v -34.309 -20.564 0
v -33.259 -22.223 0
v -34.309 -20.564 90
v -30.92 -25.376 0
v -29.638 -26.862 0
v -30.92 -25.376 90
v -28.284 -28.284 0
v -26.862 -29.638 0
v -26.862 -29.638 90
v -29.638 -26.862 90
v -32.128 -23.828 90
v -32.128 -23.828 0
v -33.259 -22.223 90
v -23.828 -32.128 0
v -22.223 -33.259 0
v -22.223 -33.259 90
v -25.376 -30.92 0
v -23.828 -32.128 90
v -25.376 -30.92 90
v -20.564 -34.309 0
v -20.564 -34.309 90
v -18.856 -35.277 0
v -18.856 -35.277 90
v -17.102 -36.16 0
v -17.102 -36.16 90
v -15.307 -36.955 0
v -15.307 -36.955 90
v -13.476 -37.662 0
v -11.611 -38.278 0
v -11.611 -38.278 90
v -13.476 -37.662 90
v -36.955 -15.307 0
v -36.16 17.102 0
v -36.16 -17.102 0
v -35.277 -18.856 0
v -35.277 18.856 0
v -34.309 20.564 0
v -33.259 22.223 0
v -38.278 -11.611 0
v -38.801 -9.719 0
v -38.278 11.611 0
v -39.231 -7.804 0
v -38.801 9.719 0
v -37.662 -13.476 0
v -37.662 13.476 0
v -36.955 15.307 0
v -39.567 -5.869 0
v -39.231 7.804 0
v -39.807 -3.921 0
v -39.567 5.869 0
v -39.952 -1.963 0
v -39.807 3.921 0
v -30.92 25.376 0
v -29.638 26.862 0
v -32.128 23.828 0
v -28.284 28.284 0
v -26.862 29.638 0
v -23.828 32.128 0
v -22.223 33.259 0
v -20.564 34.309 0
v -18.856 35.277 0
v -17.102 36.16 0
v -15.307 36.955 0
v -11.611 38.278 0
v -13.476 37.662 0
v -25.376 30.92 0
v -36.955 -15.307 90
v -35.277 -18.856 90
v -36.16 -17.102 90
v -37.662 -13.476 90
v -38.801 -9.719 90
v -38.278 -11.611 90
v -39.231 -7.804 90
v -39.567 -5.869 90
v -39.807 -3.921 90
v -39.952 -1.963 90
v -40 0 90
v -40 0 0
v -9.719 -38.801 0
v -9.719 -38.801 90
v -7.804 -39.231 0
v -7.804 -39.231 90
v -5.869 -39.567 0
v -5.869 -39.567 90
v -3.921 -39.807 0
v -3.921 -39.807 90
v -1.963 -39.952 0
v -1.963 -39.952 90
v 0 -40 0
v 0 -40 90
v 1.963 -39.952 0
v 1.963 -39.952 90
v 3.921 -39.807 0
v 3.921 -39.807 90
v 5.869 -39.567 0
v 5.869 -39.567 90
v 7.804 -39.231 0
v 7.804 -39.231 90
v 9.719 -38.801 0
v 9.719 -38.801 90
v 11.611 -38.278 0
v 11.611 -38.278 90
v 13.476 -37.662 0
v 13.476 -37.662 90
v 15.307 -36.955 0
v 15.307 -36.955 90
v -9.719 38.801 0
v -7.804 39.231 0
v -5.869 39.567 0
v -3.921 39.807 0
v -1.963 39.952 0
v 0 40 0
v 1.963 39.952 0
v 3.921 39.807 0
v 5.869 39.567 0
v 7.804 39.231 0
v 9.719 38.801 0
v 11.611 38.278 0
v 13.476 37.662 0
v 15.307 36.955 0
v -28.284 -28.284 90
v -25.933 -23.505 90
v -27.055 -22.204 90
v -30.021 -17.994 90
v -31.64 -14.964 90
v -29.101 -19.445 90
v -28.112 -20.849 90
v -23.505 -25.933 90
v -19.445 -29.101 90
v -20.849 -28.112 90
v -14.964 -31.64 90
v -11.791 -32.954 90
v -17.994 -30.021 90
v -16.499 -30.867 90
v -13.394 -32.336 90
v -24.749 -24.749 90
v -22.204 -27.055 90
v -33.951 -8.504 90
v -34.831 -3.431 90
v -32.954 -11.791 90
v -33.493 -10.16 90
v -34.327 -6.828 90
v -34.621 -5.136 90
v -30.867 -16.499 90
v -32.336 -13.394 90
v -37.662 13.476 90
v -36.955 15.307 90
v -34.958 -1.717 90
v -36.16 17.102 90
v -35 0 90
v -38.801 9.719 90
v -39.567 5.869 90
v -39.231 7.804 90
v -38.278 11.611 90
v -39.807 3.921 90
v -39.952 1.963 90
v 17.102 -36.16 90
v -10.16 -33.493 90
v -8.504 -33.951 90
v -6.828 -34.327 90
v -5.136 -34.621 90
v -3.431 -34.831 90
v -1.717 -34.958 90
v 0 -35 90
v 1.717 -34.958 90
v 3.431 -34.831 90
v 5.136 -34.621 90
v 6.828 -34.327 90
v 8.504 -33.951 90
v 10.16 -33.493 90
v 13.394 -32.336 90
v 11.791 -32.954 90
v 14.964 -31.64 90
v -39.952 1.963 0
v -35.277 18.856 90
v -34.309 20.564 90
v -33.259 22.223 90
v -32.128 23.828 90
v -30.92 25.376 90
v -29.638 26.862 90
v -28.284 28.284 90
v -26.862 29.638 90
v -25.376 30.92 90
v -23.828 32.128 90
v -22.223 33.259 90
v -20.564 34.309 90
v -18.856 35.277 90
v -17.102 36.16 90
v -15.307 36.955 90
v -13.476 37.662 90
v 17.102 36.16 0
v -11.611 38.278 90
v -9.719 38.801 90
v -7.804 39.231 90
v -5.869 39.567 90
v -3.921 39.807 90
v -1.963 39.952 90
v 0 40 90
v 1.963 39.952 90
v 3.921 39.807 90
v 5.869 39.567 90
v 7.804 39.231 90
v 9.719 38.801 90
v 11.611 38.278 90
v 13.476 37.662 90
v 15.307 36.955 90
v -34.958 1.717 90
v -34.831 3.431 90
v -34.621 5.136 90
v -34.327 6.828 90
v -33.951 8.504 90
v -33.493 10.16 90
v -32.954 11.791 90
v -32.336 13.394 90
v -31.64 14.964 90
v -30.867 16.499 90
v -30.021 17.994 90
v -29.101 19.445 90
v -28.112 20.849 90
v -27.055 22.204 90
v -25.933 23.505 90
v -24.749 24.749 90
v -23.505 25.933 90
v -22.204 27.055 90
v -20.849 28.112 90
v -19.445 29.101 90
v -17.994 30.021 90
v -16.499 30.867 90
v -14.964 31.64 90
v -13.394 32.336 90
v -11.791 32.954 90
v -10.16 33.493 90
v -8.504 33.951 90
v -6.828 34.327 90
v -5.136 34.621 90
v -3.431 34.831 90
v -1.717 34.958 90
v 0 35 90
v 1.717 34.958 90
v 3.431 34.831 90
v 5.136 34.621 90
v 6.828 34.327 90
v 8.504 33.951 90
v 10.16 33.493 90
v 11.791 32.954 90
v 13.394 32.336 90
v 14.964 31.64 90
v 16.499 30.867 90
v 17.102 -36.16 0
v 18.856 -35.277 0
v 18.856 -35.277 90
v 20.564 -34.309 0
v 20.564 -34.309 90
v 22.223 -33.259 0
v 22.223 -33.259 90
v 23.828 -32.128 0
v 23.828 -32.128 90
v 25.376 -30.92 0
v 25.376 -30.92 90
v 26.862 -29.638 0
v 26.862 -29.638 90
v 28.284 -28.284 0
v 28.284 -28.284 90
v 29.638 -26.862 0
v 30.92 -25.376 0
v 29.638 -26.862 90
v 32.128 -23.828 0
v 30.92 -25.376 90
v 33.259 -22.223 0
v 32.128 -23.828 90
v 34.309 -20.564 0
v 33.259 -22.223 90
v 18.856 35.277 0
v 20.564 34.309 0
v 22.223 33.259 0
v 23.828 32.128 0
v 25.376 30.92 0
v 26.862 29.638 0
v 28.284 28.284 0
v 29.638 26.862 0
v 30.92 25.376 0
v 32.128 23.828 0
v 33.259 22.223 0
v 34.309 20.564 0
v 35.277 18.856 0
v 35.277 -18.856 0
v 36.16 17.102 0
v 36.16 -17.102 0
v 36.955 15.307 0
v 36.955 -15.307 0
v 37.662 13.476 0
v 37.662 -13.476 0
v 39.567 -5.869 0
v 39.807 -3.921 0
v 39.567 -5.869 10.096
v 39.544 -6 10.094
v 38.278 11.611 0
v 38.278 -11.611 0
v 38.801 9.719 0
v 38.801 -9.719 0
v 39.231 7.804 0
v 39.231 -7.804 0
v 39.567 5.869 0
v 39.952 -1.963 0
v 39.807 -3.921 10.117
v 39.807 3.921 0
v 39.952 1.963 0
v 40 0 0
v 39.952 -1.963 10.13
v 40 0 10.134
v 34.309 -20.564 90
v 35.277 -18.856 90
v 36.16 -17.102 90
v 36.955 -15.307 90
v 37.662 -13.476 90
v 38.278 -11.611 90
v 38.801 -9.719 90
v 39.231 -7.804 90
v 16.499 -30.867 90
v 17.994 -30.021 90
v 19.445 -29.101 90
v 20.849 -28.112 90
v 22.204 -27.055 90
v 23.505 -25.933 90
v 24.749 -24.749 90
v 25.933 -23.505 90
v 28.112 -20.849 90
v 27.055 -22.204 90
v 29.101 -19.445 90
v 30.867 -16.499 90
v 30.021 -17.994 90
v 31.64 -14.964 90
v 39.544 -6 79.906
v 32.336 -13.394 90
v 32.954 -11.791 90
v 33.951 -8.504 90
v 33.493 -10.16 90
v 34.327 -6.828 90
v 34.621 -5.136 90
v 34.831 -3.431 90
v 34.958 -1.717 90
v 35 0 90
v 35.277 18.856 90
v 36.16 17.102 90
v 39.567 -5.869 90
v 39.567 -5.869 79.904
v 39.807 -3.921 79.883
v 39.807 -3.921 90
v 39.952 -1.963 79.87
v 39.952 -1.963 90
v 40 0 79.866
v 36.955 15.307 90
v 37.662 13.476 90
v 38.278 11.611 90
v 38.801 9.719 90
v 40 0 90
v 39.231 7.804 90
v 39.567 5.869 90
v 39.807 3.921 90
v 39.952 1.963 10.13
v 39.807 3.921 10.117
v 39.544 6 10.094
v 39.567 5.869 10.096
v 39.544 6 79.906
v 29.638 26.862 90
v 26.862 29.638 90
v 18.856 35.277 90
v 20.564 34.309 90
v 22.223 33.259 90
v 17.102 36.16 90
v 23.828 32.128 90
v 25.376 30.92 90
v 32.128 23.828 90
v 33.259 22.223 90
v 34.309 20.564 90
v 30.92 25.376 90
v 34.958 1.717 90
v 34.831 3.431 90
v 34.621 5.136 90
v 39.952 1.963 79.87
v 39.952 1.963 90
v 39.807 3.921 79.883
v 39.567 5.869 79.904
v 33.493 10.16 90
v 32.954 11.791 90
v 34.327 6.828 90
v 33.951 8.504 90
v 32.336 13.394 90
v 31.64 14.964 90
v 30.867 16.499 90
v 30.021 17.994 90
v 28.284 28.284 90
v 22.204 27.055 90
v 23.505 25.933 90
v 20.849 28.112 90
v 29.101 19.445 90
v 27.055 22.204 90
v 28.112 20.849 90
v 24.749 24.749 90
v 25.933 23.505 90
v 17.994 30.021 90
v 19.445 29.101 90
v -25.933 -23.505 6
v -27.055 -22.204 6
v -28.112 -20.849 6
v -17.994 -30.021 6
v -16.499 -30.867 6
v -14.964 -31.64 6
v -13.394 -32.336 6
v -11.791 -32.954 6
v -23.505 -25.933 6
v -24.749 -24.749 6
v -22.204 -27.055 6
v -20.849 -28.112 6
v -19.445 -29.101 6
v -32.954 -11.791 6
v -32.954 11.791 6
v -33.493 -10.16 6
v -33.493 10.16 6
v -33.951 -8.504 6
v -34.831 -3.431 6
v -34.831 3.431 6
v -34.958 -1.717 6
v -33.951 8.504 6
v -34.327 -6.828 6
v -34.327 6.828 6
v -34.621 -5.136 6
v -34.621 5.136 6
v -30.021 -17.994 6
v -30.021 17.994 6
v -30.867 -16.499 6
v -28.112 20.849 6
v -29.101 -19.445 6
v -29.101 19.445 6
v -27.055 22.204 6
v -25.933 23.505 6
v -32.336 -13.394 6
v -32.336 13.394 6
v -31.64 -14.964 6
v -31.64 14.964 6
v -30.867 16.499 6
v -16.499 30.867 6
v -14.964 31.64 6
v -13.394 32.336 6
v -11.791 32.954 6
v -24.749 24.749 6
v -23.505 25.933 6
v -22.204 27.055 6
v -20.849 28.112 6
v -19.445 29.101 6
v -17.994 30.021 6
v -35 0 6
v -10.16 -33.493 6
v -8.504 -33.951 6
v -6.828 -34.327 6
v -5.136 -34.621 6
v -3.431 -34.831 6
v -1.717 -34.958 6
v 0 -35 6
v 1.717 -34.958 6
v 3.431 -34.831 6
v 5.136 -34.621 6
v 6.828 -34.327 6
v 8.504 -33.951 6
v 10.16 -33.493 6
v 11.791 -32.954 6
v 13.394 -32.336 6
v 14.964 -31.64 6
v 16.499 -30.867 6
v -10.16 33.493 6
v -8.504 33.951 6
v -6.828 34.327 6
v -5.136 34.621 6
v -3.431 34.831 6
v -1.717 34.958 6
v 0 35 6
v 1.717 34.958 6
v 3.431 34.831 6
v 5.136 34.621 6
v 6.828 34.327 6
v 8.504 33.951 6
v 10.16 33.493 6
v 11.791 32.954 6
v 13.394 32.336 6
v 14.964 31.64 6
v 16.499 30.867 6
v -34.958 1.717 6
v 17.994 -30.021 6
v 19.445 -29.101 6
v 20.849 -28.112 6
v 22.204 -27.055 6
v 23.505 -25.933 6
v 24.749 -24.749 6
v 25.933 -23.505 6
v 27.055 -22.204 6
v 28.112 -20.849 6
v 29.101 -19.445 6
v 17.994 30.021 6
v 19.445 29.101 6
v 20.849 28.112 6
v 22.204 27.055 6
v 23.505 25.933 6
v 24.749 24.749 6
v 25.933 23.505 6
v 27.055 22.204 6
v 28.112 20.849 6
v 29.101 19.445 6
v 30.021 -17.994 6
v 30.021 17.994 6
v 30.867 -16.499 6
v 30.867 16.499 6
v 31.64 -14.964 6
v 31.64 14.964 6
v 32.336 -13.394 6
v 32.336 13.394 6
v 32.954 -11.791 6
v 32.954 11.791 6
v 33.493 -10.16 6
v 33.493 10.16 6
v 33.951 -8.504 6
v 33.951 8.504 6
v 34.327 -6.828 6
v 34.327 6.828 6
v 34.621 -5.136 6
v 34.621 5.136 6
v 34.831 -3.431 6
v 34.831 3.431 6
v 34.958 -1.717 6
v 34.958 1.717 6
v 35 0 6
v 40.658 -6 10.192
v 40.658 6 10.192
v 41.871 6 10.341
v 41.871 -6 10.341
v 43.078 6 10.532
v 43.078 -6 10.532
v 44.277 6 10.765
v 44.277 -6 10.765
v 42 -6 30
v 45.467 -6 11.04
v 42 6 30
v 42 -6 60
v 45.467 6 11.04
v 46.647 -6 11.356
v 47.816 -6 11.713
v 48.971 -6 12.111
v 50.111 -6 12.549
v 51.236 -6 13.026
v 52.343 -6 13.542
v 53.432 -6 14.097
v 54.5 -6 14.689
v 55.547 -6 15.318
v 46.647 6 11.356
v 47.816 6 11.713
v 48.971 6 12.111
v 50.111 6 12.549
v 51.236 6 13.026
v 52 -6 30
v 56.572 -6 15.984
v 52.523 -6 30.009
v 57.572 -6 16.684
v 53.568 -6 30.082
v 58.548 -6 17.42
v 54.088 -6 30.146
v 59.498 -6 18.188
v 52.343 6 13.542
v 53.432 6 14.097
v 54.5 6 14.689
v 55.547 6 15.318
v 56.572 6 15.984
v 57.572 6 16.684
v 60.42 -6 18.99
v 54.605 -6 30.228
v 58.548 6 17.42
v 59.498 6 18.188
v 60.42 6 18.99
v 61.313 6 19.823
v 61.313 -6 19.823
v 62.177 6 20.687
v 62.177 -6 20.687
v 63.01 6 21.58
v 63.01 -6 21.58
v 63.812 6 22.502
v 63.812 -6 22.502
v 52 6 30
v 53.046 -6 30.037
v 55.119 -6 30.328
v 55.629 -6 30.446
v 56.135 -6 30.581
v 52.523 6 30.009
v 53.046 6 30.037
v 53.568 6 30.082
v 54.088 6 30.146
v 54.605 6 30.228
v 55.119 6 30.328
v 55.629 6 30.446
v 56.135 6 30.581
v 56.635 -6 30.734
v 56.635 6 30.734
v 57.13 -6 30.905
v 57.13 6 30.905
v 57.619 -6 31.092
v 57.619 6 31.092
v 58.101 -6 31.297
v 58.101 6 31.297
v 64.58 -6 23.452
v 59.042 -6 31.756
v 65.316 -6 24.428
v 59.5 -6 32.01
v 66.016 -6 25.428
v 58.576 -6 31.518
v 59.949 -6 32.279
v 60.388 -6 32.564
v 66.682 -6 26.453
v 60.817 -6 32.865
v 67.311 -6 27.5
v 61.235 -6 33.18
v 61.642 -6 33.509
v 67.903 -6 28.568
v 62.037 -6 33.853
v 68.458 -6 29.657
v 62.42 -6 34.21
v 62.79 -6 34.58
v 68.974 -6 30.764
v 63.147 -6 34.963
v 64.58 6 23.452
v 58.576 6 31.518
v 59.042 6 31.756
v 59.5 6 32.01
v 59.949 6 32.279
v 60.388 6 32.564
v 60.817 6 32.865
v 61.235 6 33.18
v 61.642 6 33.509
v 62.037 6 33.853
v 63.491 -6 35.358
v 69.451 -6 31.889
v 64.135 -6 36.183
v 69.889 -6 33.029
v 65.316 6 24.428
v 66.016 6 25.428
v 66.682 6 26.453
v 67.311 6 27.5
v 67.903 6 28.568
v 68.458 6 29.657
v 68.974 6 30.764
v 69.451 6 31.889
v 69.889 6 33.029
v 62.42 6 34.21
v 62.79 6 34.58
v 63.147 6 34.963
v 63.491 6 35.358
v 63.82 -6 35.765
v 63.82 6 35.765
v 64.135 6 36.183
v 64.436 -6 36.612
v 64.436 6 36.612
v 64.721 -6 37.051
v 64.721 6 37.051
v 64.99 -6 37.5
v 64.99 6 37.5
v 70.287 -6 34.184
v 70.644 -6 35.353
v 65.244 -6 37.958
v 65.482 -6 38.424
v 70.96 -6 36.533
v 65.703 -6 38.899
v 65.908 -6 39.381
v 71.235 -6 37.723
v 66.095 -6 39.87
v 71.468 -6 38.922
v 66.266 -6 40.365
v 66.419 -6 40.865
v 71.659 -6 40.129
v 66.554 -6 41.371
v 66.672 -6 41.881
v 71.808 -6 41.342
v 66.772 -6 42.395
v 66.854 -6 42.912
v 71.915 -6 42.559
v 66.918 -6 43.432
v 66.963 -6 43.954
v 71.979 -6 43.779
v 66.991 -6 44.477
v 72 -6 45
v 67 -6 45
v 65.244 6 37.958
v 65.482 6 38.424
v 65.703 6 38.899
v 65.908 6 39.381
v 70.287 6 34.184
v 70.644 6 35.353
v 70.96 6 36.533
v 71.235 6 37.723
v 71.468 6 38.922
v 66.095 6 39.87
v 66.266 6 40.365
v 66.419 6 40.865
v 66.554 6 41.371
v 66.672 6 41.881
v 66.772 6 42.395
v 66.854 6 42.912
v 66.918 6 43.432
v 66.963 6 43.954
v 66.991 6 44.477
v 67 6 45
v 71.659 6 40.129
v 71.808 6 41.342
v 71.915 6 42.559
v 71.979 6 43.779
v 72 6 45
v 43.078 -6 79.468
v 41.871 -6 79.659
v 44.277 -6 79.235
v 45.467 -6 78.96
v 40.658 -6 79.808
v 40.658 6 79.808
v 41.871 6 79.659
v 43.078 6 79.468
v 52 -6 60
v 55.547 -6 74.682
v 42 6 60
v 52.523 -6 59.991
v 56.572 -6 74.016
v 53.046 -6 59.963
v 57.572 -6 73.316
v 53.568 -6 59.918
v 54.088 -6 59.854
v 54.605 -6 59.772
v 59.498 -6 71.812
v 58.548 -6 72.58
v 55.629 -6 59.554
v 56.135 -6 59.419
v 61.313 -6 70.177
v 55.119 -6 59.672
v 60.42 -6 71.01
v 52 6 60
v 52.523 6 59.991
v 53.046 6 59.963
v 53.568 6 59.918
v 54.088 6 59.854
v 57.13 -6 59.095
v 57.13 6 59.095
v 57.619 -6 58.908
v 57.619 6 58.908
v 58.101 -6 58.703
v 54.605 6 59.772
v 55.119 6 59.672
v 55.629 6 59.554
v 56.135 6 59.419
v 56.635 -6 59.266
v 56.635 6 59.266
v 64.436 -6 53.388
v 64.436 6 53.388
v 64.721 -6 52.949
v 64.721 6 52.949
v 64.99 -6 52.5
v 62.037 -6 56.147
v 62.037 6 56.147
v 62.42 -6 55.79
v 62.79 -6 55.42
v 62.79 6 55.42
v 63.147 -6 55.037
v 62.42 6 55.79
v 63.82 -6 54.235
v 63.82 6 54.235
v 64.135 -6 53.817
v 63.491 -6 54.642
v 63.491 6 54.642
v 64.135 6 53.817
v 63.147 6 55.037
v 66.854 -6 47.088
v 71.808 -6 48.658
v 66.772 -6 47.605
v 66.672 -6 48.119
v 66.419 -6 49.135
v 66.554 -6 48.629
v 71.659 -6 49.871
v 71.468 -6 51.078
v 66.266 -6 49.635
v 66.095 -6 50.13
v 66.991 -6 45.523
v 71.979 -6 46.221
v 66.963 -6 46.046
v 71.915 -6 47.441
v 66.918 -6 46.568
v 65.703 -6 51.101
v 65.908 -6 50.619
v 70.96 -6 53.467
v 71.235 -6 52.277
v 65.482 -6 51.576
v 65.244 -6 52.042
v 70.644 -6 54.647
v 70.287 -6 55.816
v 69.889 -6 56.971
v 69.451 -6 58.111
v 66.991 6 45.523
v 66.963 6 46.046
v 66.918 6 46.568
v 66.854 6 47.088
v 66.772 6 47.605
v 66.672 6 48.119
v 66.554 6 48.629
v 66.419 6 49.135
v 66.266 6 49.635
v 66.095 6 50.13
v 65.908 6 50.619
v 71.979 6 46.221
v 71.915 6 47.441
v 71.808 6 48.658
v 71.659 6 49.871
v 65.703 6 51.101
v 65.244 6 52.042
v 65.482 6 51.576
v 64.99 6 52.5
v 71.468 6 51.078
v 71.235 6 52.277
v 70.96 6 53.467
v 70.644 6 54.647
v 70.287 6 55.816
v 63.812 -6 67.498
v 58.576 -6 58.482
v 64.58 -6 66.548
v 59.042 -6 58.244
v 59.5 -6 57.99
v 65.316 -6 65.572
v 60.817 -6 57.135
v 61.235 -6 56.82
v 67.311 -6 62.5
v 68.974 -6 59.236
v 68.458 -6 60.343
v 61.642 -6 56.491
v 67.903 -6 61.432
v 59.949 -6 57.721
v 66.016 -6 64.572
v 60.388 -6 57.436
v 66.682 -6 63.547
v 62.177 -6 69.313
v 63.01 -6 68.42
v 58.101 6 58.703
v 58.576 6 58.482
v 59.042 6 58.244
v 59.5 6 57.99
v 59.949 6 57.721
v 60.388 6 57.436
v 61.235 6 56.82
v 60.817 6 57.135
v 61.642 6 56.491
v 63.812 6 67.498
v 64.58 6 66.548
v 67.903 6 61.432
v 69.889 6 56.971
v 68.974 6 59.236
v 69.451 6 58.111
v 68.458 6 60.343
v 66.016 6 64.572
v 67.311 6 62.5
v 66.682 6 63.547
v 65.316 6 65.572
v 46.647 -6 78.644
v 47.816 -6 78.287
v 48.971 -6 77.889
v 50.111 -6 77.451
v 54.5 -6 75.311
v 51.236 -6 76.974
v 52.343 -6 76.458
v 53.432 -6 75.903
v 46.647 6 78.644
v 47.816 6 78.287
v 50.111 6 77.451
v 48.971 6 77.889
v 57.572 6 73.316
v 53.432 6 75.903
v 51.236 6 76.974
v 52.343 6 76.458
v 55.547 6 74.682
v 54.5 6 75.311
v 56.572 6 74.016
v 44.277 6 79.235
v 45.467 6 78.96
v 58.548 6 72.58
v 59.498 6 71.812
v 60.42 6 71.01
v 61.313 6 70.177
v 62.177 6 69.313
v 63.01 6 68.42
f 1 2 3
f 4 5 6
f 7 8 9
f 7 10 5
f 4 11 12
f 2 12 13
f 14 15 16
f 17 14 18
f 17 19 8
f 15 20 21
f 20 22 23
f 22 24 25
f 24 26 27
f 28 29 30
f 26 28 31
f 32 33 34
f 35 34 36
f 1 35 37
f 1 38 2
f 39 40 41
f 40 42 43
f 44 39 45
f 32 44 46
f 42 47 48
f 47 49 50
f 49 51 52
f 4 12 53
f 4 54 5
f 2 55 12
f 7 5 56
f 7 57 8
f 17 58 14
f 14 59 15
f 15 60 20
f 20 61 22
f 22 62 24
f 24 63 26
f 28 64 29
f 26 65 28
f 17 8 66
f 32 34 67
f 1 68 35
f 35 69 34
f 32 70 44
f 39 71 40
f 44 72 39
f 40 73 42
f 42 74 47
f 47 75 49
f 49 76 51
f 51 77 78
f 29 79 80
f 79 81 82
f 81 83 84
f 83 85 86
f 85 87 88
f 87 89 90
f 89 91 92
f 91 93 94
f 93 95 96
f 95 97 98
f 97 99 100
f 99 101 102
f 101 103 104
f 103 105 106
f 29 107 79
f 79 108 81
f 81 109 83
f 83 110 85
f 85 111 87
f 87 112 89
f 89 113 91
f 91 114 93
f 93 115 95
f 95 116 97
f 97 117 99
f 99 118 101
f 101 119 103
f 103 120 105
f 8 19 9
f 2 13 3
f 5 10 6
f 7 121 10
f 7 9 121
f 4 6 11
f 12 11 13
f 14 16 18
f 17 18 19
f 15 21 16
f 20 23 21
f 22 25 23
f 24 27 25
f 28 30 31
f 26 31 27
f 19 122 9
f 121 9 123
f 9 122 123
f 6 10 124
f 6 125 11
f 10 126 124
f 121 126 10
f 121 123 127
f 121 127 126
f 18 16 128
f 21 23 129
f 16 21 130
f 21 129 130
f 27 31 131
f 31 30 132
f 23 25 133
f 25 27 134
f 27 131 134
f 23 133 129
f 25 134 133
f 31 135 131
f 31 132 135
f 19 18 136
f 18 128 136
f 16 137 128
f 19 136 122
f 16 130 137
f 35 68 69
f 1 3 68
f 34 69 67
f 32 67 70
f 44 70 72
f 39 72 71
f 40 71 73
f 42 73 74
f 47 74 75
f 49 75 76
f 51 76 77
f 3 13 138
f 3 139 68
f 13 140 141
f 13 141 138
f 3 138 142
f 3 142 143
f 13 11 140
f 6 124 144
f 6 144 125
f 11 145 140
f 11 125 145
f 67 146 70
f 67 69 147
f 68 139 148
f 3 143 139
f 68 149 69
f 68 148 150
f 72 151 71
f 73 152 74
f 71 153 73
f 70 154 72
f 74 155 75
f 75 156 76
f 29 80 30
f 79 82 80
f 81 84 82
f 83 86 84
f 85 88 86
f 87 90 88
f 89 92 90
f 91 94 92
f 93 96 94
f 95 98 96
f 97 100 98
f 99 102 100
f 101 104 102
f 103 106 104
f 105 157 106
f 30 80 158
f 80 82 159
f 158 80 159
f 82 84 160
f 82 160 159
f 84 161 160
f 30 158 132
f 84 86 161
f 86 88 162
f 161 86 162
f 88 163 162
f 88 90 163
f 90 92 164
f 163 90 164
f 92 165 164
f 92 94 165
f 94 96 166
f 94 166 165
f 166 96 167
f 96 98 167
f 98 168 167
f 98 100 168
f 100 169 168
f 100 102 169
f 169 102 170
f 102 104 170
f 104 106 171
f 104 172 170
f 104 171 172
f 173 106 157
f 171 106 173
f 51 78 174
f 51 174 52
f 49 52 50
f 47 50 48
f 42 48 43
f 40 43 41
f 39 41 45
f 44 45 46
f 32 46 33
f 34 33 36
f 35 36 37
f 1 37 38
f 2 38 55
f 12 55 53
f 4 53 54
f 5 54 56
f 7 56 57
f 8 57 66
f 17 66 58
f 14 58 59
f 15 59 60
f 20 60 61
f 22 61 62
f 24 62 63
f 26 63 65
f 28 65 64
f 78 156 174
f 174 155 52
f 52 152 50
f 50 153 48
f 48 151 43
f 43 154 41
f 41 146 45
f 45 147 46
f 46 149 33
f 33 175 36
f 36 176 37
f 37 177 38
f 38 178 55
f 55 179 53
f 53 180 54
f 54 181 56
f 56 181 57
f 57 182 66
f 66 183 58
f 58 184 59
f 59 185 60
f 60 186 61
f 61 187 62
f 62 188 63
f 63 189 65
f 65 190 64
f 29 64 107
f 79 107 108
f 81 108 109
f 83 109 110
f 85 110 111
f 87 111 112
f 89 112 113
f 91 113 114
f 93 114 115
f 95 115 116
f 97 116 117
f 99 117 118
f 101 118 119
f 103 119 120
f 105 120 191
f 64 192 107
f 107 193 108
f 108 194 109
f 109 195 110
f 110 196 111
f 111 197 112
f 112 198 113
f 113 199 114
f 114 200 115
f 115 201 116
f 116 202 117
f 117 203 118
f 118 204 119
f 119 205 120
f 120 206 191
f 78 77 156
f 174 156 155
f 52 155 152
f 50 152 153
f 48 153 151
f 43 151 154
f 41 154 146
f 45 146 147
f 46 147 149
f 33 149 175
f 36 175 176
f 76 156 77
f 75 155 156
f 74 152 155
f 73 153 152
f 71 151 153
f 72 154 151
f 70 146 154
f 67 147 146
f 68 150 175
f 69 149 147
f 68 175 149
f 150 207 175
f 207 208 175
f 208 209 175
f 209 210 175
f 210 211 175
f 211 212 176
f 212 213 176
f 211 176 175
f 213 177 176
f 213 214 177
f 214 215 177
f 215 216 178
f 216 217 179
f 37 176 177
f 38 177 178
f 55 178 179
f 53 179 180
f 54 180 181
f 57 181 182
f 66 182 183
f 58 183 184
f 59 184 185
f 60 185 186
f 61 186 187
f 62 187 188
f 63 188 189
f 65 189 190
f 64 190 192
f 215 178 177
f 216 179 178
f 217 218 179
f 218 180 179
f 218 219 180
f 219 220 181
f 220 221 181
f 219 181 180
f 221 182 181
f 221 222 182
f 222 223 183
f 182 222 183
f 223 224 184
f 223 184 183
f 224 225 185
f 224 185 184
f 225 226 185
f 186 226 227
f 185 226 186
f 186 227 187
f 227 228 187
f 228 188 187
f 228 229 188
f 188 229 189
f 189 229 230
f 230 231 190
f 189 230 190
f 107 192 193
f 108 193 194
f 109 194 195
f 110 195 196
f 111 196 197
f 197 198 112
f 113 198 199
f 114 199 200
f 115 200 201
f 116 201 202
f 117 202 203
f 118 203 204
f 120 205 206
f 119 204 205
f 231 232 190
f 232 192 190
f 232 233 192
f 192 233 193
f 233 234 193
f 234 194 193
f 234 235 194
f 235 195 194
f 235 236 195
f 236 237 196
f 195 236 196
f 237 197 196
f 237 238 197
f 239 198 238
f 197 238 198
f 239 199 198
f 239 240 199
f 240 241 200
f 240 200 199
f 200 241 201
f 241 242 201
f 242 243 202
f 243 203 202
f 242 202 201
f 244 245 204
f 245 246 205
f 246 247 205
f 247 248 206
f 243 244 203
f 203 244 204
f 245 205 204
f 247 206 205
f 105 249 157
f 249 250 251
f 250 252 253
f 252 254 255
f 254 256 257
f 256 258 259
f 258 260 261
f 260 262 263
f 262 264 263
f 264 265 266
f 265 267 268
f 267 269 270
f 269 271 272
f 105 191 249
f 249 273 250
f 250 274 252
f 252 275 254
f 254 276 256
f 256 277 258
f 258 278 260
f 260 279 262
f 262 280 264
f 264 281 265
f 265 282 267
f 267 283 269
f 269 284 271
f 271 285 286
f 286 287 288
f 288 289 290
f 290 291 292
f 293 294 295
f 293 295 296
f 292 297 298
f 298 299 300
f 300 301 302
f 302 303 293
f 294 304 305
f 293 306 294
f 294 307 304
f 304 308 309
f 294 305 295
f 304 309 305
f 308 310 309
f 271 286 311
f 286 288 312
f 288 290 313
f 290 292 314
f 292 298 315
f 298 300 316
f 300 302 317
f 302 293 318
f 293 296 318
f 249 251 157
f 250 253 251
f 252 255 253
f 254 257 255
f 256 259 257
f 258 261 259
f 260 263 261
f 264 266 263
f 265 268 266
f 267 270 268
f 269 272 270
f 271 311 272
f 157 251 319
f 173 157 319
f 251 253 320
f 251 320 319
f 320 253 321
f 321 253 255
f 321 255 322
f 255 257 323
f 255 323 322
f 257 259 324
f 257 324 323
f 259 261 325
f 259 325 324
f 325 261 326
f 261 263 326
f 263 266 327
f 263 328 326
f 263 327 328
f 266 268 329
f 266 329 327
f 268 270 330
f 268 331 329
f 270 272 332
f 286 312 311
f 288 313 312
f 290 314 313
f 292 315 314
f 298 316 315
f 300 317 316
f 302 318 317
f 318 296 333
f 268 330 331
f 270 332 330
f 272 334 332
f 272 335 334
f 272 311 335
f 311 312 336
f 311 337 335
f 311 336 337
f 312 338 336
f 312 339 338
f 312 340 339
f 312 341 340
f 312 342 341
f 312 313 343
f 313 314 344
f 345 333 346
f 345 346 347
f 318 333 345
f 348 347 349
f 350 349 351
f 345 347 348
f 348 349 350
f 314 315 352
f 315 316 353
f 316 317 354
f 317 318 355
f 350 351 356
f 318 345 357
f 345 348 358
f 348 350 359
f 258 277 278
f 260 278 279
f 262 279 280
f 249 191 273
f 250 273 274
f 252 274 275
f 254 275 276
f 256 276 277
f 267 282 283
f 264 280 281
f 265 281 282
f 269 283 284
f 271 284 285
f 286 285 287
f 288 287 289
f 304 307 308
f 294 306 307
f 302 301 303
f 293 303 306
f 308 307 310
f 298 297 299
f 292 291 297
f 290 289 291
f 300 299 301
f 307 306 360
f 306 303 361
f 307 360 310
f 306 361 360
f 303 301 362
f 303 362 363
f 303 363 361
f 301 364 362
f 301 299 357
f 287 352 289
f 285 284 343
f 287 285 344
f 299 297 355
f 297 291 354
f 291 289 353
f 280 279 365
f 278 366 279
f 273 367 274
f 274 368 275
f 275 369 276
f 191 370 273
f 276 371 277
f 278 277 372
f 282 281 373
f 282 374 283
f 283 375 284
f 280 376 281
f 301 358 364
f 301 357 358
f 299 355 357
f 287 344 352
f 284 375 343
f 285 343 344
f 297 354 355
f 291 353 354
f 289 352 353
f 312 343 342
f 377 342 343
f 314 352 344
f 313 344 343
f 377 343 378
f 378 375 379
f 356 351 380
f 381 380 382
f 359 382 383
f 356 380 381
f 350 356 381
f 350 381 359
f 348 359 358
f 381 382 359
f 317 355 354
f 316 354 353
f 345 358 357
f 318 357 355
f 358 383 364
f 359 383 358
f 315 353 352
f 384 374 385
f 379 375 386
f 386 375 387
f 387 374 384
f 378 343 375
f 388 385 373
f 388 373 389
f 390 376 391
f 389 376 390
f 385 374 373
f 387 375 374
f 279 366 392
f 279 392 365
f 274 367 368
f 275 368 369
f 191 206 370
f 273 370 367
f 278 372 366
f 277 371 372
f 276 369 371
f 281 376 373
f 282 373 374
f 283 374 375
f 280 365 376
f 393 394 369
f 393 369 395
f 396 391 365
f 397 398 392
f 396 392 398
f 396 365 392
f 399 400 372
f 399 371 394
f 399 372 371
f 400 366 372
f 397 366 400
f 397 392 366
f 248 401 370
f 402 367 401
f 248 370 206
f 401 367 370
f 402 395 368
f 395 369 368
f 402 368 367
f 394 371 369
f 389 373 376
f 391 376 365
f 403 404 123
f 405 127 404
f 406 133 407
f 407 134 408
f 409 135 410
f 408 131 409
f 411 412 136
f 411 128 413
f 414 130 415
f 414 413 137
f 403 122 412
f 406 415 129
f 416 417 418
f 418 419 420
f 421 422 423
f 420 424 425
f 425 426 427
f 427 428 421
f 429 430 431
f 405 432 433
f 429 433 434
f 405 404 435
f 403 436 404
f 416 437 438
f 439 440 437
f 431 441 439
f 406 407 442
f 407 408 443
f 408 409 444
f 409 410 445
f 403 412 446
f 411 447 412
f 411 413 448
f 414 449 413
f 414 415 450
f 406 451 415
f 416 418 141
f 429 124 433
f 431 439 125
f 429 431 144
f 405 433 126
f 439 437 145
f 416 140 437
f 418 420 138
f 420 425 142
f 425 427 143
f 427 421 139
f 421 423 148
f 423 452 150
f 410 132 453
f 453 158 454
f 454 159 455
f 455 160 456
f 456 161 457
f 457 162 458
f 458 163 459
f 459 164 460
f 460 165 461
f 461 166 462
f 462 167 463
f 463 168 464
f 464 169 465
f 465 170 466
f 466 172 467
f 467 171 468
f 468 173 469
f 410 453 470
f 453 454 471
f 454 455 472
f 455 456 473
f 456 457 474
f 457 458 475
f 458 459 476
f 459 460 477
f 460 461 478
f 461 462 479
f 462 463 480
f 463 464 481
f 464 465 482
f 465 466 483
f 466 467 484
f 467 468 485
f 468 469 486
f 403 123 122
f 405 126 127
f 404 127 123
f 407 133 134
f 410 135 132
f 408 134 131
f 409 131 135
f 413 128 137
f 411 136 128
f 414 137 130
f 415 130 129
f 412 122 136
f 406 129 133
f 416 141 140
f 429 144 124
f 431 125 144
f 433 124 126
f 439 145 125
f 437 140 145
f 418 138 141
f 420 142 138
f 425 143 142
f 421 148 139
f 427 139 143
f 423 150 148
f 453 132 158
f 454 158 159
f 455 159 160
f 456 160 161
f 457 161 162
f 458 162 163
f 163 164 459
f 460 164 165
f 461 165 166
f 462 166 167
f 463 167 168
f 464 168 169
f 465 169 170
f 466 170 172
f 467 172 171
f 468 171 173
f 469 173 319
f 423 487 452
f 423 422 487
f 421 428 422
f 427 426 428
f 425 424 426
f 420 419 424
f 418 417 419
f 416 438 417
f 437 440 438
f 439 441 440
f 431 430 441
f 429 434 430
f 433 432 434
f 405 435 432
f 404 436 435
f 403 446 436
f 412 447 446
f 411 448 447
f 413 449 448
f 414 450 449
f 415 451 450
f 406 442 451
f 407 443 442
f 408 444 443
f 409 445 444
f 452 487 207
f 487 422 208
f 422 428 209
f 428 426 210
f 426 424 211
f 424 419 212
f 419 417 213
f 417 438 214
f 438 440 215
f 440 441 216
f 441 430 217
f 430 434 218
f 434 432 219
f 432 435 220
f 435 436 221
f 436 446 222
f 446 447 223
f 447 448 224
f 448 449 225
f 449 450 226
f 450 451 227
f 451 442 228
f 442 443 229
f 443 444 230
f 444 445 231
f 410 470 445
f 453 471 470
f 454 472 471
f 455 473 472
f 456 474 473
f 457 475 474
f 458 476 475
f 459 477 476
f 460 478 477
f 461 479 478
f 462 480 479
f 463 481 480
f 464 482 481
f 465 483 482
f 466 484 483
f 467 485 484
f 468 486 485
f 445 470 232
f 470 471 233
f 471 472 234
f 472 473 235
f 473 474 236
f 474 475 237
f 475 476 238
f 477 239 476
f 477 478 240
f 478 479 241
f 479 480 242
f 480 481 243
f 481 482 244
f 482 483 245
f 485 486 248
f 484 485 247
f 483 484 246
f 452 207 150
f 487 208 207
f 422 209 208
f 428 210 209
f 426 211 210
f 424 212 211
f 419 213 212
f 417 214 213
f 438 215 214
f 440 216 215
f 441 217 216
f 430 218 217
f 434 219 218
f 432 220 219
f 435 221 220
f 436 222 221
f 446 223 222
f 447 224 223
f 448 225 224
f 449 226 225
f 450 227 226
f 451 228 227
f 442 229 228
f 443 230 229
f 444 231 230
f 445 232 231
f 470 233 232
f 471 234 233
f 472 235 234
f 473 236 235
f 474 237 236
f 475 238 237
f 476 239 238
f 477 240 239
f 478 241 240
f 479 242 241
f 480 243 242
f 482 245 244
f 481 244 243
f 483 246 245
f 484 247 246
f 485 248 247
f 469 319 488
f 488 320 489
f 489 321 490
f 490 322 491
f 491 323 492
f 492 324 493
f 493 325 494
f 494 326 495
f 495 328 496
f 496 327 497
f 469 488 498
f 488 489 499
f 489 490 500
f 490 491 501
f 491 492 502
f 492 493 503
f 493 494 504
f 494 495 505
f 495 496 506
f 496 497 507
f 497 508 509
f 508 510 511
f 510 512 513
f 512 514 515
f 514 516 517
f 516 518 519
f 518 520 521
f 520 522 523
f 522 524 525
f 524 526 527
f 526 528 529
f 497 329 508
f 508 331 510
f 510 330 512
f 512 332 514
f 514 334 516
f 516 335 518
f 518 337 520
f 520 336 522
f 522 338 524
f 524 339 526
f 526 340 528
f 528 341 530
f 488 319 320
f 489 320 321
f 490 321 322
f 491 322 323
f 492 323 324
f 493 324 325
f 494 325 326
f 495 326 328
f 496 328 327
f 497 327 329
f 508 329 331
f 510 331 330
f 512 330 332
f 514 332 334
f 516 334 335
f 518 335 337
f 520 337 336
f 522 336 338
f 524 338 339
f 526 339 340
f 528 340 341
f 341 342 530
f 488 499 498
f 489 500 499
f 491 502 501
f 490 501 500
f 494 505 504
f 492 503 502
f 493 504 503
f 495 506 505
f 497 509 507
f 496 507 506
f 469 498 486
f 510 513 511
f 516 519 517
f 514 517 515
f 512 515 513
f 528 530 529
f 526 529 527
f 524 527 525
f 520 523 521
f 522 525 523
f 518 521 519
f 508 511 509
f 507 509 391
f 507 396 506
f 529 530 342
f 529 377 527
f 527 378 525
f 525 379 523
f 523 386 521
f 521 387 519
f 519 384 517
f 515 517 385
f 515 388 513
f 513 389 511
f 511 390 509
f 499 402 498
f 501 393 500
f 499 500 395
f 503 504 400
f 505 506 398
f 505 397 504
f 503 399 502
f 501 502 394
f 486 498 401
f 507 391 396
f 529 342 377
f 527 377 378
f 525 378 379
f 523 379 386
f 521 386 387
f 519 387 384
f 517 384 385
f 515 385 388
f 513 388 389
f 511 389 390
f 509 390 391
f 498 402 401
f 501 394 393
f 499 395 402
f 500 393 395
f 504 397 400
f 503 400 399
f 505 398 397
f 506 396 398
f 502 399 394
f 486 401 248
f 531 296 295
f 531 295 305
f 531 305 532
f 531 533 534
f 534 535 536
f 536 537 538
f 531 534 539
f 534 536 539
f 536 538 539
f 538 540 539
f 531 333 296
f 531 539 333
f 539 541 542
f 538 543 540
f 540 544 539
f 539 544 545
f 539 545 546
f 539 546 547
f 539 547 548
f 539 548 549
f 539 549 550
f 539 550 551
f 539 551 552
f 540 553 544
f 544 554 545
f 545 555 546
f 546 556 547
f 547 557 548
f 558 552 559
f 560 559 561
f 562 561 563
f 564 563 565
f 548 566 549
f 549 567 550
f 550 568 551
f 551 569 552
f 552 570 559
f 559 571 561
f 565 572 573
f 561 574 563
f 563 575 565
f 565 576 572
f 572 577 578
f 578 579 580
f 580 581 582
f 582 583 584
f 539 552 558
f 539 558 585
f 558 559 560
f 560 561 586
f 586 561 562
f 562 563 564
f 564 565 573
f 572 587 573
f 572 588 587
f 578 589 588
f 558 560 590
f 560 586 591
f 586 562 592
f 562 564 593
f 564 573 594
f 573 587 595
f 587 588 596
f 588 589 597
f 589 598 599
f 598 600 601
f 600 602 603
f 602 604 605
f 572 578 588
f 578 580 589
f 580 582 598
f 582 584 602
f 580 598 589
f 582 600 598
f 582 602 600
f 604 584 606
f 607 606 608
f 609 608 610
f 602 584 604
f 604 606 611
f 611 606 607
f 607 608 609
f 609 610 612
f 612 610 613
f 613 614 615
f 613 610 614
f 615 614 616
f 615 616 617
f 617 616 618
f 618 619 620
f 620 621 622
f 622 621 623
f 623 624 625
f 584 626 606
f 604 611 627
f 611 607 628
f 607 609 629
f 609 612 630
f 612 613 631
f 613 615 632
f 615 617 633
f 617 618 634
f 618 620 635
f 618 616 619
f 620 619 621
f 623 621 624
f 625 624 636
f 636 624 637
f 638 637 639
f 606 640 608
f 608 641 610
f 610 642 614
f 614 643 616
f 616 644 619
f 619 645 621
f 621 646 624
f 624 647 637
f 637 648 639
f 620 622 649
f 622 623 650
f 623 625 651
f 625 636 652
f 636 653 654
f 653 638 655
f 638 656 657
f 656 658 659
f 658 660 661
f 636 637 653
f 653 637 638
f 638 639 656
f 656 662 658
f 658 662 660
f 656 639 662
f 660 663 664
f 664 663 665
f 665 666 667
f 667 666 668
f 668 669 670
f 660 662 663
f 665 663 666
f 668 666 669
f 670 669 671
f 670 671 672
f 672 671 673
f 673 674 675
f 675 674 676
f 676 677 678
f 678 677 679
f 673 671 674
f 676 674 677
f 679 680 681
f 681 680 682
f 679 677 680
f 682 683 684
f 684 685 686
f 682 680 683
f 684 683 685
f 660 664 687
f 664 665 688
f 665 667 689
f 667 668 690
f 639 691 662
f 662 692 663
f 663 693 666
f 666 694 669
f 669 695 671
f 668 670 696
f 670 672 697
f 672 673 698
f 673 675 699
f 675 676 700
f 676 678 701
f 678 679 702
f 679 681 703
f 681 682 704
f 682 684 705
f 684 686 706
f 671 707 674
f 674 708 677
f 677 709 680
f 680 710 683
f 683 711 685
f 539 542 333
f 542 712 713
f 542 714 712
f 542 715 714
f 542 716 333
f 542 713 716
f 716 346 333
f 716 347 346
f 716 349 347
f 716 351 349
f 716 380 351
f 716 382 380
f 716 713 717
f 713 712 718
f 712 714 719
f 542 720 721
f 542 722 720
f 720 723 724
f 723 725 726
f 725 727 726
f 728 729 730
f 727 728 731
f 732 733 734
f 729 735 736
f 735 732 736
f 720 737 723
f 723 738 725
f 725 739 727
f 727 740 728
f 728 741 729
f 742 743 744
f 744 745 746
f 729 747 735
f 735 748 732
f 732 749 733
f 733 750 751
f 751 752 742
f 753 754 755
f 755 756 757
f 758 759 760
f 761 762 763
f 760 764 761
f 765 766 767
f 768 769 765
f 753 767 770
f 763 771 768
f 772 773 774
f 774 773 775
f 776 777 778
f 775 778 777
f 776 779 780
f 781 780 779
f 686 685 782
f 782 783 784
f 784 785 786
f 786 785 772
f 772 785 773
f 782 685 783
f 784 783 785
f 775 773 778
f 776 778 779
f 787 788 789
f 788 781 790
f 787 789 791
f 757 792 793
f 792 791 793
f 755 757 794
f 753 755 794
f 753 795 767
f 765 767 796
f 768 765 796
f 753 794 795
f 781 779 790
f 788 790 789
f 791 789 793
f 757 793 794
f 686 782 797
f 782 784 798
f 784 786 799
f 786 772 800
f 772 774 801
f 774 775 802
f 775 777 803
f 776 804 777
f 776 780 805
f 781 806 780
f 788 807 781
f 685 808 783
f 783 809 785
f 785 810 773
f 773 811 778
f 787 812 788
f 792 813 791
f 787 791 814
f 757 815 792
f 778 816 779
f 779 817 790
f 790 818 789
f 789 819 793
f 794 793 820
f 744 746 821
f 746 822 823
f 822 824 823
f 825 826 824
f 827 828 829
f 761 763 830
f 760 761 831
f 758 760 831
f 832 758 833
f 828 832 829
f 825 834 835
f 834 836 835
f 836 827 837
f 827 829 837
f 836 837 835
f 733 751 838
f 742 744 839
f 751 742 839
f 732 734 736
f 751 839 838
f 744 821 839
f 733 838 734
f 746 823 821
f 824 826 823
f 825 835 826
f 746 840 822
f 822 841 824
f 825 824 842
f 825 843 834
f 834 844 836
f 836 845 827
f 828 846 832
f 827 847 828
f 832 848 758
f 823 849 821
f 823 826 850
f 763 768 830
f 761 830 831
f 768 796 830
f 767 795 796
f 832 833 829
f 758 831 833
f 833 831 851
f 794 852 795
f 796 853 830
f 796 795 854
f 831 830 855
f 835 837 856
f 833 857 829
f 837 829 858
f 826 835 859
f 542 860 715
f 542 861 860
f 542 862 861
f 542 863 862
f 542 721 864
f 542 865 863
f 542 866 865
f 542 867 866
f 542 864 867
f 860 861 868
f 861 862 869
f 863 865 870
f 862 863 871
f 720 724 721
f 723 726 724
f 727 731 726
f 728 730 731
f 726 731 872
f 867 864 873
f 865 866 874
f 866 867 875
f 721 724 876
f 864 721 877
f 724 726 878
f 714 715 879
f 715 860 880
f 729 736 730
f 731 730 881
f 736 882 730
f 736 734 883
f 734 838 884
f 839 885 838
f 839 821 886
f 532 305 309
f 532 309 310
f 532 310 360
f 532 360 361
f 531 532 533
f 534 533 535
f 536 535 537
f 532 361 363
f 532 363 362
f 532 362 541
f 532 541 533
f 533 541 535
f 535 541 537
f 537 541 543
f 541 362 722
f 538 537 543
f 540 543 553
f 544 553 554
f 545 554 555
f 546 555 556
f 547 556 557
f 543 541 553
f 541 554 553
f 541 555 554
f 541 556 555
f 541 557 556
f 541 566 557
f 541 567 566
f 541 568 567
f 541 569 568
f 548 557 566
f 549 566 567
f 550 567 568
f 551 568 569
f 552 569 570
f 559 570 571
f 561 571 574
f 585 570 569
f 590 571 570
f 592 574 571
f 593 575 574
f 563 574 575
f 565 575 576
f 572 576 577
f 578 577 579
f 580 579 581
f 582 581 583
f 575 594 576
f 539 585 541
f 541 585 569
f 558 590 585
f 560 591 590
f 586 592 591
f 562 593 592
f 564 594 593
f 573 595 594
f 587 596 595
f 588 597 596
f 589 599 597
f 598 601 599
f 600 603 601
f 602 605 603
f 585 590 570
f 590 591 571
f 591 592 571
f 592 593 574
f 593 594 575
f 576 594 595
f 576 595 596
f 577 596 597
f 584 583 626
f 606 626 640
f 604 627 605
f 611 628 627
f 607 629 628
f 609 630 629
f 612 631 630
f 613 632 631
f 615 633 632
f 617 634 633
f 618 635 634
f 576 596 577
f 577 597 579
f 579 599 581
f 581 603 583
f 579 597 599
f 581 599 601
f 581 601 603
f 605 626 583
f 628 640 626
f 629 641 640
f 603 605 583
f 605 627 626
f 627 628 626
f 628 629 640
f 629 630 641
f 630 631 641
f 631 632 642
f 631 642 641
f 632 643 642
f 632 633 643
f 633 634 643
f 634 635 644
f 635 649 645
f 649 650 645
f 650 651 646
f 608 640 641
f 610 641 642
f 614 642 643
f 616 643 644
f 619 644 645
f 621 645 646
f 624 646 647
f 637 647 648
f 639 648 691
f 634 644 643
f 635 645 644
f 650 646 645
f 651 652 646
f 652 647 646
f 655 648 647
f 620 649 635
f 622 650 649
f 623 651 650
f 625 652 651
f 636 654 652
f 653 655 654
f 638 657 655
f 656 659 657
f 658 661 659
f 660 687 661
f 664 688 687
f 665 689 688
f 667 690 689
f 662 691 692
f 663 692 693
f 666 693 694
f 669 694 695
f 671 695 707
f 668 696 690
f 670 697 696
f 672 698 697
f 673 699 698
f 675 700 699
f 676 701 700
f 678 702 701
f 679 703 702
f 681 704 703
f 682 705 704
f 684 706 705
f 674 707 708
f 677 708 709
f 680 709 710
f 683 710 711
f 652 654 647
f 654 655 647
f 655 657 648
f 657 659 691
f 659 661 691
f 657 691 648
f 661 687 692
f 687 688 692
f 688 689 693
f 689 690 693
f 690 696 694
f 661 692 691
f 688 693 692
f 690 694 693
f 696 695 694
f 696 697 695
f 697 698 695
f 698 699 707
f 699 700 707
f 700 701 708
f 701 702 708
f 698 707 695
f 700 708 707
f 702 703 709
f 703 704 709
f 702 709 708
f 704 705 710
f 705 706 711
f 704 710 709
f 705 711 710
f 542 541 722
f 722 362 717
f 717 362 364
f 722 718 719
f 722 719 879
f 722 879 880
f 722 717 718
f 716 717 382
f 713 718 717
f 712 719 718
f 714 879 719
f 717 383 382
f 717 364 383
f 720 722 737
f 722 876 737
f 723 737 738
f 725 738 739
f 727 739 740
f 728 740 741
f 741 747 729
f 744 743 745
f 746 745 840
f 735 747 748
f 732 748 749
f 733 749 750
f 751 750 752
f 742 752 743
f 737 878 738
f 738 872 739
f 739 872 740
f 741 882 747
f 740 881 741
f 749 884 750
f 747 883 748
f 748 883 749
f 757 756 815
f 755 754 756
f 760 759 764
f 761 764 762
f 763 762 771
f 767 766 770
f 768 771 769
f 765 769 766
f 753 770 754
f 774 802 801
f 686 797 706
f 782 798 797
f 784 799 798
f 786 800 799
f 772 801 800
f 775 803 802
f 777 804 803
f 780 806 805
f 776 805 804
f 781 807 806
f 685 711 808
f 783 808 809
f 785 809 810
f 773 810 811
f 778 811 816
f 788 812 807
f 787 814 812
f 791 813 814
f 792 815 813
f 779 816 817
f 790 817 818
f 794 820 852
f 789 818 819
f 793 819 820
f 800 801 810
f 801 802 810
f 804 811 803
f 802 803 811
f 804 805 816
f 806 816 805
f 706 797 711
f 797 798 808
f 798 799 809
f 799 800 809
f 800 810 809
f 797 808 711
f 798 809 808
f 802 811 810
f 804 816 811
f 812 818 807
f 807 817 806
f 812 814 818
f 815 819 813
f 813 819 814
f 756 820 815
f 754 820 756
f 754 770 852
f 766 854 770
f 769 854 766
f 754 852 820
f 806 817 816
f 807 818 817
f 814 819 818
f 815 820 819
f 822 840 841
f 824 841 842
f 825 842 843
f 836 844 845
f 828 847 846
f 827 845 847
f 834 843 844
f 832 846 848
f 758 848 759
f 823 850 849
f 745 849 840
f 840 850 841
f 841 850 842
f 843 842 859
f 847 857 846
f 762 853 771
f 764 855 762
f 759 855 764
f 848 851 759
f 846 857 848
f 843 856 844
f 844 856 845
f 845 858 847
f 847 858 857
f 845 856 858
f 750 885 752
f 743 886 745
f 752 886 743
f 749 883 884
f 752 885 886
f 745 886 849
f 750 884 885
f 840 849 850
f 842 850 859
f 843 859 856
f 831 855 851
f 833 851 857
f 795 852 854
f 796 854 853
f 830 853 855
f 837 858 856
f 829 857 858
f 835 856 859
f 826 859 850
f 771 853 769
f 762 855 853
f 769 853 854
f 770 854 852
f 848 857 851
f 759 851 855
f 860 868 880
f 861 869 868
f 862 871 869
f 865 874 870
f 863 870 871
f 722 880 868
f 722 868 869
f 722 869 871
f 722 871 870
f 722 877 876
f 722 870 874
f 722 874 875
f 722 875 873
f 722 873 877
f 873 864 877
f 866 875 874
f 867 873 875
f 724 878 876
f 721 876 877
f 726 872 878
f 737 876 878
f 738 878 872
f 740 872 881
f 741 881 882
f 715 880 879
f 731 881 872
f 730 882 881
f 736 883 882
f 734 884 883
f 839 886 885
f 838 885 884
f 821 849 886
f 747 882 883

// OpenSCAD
$fn = 128;

// マグ本体
cup_outer_diameter = 80;
cup_inner_diameter = 70;
cup_height = 90;
bottom_thickness = 6;

// 取手
handle_thickness = 12;
handle_center_z = cup_height / 2;
outer_chord_x = 37;
outer_radius = 35;

// 取手の内側空間：幅25mm × 高さ30mm
opening_left_x = 42;
opening_round_start_x = 52;
opening_radius = 15;

module cup_body() {
    difference() {
        cylinder(d = cup_outer_diameter, h = cup_height);

        translate([0, 0, bottom_thickness])
            cylinder(
                d = cup_inner_diameter,
                h = cup_height - bottom_thickness + 1
            );
    }
}

module handle_profile_2d() {
    difference() {
        polygon(points = concat(
            [[outer_chord_x, -outer_radius]],
            [
                for (a = [-90 : 2 : 90])
                    [
                        outer_chord_x + outer_radius * cos(a),
                        outer_radius * sin(a)
                    ]
            ],
            [[outer_chord_x, outer_radius]]
        ));

        polygon(points = concat(
            [[opening_left_x, -opening_radius]],
            [[opening_round_start_x, -opening_radius]],
            [
                for (a = [-90 : 2 : 90])
                    [
                        opening_round_start_x + opening_radius * cos(a),
                        opening_radius * sin(a)
                    ]
            ],
            [[opening_left_x, opening_radius]]
        ));
    }
}

union() {
    cup_body();

    translate([0, 0, handle_center_z])
        rotate([90, 0, 0])
            linear_extrude(height = handle_thickness, center = true)
                handle_profile_2d();
}
